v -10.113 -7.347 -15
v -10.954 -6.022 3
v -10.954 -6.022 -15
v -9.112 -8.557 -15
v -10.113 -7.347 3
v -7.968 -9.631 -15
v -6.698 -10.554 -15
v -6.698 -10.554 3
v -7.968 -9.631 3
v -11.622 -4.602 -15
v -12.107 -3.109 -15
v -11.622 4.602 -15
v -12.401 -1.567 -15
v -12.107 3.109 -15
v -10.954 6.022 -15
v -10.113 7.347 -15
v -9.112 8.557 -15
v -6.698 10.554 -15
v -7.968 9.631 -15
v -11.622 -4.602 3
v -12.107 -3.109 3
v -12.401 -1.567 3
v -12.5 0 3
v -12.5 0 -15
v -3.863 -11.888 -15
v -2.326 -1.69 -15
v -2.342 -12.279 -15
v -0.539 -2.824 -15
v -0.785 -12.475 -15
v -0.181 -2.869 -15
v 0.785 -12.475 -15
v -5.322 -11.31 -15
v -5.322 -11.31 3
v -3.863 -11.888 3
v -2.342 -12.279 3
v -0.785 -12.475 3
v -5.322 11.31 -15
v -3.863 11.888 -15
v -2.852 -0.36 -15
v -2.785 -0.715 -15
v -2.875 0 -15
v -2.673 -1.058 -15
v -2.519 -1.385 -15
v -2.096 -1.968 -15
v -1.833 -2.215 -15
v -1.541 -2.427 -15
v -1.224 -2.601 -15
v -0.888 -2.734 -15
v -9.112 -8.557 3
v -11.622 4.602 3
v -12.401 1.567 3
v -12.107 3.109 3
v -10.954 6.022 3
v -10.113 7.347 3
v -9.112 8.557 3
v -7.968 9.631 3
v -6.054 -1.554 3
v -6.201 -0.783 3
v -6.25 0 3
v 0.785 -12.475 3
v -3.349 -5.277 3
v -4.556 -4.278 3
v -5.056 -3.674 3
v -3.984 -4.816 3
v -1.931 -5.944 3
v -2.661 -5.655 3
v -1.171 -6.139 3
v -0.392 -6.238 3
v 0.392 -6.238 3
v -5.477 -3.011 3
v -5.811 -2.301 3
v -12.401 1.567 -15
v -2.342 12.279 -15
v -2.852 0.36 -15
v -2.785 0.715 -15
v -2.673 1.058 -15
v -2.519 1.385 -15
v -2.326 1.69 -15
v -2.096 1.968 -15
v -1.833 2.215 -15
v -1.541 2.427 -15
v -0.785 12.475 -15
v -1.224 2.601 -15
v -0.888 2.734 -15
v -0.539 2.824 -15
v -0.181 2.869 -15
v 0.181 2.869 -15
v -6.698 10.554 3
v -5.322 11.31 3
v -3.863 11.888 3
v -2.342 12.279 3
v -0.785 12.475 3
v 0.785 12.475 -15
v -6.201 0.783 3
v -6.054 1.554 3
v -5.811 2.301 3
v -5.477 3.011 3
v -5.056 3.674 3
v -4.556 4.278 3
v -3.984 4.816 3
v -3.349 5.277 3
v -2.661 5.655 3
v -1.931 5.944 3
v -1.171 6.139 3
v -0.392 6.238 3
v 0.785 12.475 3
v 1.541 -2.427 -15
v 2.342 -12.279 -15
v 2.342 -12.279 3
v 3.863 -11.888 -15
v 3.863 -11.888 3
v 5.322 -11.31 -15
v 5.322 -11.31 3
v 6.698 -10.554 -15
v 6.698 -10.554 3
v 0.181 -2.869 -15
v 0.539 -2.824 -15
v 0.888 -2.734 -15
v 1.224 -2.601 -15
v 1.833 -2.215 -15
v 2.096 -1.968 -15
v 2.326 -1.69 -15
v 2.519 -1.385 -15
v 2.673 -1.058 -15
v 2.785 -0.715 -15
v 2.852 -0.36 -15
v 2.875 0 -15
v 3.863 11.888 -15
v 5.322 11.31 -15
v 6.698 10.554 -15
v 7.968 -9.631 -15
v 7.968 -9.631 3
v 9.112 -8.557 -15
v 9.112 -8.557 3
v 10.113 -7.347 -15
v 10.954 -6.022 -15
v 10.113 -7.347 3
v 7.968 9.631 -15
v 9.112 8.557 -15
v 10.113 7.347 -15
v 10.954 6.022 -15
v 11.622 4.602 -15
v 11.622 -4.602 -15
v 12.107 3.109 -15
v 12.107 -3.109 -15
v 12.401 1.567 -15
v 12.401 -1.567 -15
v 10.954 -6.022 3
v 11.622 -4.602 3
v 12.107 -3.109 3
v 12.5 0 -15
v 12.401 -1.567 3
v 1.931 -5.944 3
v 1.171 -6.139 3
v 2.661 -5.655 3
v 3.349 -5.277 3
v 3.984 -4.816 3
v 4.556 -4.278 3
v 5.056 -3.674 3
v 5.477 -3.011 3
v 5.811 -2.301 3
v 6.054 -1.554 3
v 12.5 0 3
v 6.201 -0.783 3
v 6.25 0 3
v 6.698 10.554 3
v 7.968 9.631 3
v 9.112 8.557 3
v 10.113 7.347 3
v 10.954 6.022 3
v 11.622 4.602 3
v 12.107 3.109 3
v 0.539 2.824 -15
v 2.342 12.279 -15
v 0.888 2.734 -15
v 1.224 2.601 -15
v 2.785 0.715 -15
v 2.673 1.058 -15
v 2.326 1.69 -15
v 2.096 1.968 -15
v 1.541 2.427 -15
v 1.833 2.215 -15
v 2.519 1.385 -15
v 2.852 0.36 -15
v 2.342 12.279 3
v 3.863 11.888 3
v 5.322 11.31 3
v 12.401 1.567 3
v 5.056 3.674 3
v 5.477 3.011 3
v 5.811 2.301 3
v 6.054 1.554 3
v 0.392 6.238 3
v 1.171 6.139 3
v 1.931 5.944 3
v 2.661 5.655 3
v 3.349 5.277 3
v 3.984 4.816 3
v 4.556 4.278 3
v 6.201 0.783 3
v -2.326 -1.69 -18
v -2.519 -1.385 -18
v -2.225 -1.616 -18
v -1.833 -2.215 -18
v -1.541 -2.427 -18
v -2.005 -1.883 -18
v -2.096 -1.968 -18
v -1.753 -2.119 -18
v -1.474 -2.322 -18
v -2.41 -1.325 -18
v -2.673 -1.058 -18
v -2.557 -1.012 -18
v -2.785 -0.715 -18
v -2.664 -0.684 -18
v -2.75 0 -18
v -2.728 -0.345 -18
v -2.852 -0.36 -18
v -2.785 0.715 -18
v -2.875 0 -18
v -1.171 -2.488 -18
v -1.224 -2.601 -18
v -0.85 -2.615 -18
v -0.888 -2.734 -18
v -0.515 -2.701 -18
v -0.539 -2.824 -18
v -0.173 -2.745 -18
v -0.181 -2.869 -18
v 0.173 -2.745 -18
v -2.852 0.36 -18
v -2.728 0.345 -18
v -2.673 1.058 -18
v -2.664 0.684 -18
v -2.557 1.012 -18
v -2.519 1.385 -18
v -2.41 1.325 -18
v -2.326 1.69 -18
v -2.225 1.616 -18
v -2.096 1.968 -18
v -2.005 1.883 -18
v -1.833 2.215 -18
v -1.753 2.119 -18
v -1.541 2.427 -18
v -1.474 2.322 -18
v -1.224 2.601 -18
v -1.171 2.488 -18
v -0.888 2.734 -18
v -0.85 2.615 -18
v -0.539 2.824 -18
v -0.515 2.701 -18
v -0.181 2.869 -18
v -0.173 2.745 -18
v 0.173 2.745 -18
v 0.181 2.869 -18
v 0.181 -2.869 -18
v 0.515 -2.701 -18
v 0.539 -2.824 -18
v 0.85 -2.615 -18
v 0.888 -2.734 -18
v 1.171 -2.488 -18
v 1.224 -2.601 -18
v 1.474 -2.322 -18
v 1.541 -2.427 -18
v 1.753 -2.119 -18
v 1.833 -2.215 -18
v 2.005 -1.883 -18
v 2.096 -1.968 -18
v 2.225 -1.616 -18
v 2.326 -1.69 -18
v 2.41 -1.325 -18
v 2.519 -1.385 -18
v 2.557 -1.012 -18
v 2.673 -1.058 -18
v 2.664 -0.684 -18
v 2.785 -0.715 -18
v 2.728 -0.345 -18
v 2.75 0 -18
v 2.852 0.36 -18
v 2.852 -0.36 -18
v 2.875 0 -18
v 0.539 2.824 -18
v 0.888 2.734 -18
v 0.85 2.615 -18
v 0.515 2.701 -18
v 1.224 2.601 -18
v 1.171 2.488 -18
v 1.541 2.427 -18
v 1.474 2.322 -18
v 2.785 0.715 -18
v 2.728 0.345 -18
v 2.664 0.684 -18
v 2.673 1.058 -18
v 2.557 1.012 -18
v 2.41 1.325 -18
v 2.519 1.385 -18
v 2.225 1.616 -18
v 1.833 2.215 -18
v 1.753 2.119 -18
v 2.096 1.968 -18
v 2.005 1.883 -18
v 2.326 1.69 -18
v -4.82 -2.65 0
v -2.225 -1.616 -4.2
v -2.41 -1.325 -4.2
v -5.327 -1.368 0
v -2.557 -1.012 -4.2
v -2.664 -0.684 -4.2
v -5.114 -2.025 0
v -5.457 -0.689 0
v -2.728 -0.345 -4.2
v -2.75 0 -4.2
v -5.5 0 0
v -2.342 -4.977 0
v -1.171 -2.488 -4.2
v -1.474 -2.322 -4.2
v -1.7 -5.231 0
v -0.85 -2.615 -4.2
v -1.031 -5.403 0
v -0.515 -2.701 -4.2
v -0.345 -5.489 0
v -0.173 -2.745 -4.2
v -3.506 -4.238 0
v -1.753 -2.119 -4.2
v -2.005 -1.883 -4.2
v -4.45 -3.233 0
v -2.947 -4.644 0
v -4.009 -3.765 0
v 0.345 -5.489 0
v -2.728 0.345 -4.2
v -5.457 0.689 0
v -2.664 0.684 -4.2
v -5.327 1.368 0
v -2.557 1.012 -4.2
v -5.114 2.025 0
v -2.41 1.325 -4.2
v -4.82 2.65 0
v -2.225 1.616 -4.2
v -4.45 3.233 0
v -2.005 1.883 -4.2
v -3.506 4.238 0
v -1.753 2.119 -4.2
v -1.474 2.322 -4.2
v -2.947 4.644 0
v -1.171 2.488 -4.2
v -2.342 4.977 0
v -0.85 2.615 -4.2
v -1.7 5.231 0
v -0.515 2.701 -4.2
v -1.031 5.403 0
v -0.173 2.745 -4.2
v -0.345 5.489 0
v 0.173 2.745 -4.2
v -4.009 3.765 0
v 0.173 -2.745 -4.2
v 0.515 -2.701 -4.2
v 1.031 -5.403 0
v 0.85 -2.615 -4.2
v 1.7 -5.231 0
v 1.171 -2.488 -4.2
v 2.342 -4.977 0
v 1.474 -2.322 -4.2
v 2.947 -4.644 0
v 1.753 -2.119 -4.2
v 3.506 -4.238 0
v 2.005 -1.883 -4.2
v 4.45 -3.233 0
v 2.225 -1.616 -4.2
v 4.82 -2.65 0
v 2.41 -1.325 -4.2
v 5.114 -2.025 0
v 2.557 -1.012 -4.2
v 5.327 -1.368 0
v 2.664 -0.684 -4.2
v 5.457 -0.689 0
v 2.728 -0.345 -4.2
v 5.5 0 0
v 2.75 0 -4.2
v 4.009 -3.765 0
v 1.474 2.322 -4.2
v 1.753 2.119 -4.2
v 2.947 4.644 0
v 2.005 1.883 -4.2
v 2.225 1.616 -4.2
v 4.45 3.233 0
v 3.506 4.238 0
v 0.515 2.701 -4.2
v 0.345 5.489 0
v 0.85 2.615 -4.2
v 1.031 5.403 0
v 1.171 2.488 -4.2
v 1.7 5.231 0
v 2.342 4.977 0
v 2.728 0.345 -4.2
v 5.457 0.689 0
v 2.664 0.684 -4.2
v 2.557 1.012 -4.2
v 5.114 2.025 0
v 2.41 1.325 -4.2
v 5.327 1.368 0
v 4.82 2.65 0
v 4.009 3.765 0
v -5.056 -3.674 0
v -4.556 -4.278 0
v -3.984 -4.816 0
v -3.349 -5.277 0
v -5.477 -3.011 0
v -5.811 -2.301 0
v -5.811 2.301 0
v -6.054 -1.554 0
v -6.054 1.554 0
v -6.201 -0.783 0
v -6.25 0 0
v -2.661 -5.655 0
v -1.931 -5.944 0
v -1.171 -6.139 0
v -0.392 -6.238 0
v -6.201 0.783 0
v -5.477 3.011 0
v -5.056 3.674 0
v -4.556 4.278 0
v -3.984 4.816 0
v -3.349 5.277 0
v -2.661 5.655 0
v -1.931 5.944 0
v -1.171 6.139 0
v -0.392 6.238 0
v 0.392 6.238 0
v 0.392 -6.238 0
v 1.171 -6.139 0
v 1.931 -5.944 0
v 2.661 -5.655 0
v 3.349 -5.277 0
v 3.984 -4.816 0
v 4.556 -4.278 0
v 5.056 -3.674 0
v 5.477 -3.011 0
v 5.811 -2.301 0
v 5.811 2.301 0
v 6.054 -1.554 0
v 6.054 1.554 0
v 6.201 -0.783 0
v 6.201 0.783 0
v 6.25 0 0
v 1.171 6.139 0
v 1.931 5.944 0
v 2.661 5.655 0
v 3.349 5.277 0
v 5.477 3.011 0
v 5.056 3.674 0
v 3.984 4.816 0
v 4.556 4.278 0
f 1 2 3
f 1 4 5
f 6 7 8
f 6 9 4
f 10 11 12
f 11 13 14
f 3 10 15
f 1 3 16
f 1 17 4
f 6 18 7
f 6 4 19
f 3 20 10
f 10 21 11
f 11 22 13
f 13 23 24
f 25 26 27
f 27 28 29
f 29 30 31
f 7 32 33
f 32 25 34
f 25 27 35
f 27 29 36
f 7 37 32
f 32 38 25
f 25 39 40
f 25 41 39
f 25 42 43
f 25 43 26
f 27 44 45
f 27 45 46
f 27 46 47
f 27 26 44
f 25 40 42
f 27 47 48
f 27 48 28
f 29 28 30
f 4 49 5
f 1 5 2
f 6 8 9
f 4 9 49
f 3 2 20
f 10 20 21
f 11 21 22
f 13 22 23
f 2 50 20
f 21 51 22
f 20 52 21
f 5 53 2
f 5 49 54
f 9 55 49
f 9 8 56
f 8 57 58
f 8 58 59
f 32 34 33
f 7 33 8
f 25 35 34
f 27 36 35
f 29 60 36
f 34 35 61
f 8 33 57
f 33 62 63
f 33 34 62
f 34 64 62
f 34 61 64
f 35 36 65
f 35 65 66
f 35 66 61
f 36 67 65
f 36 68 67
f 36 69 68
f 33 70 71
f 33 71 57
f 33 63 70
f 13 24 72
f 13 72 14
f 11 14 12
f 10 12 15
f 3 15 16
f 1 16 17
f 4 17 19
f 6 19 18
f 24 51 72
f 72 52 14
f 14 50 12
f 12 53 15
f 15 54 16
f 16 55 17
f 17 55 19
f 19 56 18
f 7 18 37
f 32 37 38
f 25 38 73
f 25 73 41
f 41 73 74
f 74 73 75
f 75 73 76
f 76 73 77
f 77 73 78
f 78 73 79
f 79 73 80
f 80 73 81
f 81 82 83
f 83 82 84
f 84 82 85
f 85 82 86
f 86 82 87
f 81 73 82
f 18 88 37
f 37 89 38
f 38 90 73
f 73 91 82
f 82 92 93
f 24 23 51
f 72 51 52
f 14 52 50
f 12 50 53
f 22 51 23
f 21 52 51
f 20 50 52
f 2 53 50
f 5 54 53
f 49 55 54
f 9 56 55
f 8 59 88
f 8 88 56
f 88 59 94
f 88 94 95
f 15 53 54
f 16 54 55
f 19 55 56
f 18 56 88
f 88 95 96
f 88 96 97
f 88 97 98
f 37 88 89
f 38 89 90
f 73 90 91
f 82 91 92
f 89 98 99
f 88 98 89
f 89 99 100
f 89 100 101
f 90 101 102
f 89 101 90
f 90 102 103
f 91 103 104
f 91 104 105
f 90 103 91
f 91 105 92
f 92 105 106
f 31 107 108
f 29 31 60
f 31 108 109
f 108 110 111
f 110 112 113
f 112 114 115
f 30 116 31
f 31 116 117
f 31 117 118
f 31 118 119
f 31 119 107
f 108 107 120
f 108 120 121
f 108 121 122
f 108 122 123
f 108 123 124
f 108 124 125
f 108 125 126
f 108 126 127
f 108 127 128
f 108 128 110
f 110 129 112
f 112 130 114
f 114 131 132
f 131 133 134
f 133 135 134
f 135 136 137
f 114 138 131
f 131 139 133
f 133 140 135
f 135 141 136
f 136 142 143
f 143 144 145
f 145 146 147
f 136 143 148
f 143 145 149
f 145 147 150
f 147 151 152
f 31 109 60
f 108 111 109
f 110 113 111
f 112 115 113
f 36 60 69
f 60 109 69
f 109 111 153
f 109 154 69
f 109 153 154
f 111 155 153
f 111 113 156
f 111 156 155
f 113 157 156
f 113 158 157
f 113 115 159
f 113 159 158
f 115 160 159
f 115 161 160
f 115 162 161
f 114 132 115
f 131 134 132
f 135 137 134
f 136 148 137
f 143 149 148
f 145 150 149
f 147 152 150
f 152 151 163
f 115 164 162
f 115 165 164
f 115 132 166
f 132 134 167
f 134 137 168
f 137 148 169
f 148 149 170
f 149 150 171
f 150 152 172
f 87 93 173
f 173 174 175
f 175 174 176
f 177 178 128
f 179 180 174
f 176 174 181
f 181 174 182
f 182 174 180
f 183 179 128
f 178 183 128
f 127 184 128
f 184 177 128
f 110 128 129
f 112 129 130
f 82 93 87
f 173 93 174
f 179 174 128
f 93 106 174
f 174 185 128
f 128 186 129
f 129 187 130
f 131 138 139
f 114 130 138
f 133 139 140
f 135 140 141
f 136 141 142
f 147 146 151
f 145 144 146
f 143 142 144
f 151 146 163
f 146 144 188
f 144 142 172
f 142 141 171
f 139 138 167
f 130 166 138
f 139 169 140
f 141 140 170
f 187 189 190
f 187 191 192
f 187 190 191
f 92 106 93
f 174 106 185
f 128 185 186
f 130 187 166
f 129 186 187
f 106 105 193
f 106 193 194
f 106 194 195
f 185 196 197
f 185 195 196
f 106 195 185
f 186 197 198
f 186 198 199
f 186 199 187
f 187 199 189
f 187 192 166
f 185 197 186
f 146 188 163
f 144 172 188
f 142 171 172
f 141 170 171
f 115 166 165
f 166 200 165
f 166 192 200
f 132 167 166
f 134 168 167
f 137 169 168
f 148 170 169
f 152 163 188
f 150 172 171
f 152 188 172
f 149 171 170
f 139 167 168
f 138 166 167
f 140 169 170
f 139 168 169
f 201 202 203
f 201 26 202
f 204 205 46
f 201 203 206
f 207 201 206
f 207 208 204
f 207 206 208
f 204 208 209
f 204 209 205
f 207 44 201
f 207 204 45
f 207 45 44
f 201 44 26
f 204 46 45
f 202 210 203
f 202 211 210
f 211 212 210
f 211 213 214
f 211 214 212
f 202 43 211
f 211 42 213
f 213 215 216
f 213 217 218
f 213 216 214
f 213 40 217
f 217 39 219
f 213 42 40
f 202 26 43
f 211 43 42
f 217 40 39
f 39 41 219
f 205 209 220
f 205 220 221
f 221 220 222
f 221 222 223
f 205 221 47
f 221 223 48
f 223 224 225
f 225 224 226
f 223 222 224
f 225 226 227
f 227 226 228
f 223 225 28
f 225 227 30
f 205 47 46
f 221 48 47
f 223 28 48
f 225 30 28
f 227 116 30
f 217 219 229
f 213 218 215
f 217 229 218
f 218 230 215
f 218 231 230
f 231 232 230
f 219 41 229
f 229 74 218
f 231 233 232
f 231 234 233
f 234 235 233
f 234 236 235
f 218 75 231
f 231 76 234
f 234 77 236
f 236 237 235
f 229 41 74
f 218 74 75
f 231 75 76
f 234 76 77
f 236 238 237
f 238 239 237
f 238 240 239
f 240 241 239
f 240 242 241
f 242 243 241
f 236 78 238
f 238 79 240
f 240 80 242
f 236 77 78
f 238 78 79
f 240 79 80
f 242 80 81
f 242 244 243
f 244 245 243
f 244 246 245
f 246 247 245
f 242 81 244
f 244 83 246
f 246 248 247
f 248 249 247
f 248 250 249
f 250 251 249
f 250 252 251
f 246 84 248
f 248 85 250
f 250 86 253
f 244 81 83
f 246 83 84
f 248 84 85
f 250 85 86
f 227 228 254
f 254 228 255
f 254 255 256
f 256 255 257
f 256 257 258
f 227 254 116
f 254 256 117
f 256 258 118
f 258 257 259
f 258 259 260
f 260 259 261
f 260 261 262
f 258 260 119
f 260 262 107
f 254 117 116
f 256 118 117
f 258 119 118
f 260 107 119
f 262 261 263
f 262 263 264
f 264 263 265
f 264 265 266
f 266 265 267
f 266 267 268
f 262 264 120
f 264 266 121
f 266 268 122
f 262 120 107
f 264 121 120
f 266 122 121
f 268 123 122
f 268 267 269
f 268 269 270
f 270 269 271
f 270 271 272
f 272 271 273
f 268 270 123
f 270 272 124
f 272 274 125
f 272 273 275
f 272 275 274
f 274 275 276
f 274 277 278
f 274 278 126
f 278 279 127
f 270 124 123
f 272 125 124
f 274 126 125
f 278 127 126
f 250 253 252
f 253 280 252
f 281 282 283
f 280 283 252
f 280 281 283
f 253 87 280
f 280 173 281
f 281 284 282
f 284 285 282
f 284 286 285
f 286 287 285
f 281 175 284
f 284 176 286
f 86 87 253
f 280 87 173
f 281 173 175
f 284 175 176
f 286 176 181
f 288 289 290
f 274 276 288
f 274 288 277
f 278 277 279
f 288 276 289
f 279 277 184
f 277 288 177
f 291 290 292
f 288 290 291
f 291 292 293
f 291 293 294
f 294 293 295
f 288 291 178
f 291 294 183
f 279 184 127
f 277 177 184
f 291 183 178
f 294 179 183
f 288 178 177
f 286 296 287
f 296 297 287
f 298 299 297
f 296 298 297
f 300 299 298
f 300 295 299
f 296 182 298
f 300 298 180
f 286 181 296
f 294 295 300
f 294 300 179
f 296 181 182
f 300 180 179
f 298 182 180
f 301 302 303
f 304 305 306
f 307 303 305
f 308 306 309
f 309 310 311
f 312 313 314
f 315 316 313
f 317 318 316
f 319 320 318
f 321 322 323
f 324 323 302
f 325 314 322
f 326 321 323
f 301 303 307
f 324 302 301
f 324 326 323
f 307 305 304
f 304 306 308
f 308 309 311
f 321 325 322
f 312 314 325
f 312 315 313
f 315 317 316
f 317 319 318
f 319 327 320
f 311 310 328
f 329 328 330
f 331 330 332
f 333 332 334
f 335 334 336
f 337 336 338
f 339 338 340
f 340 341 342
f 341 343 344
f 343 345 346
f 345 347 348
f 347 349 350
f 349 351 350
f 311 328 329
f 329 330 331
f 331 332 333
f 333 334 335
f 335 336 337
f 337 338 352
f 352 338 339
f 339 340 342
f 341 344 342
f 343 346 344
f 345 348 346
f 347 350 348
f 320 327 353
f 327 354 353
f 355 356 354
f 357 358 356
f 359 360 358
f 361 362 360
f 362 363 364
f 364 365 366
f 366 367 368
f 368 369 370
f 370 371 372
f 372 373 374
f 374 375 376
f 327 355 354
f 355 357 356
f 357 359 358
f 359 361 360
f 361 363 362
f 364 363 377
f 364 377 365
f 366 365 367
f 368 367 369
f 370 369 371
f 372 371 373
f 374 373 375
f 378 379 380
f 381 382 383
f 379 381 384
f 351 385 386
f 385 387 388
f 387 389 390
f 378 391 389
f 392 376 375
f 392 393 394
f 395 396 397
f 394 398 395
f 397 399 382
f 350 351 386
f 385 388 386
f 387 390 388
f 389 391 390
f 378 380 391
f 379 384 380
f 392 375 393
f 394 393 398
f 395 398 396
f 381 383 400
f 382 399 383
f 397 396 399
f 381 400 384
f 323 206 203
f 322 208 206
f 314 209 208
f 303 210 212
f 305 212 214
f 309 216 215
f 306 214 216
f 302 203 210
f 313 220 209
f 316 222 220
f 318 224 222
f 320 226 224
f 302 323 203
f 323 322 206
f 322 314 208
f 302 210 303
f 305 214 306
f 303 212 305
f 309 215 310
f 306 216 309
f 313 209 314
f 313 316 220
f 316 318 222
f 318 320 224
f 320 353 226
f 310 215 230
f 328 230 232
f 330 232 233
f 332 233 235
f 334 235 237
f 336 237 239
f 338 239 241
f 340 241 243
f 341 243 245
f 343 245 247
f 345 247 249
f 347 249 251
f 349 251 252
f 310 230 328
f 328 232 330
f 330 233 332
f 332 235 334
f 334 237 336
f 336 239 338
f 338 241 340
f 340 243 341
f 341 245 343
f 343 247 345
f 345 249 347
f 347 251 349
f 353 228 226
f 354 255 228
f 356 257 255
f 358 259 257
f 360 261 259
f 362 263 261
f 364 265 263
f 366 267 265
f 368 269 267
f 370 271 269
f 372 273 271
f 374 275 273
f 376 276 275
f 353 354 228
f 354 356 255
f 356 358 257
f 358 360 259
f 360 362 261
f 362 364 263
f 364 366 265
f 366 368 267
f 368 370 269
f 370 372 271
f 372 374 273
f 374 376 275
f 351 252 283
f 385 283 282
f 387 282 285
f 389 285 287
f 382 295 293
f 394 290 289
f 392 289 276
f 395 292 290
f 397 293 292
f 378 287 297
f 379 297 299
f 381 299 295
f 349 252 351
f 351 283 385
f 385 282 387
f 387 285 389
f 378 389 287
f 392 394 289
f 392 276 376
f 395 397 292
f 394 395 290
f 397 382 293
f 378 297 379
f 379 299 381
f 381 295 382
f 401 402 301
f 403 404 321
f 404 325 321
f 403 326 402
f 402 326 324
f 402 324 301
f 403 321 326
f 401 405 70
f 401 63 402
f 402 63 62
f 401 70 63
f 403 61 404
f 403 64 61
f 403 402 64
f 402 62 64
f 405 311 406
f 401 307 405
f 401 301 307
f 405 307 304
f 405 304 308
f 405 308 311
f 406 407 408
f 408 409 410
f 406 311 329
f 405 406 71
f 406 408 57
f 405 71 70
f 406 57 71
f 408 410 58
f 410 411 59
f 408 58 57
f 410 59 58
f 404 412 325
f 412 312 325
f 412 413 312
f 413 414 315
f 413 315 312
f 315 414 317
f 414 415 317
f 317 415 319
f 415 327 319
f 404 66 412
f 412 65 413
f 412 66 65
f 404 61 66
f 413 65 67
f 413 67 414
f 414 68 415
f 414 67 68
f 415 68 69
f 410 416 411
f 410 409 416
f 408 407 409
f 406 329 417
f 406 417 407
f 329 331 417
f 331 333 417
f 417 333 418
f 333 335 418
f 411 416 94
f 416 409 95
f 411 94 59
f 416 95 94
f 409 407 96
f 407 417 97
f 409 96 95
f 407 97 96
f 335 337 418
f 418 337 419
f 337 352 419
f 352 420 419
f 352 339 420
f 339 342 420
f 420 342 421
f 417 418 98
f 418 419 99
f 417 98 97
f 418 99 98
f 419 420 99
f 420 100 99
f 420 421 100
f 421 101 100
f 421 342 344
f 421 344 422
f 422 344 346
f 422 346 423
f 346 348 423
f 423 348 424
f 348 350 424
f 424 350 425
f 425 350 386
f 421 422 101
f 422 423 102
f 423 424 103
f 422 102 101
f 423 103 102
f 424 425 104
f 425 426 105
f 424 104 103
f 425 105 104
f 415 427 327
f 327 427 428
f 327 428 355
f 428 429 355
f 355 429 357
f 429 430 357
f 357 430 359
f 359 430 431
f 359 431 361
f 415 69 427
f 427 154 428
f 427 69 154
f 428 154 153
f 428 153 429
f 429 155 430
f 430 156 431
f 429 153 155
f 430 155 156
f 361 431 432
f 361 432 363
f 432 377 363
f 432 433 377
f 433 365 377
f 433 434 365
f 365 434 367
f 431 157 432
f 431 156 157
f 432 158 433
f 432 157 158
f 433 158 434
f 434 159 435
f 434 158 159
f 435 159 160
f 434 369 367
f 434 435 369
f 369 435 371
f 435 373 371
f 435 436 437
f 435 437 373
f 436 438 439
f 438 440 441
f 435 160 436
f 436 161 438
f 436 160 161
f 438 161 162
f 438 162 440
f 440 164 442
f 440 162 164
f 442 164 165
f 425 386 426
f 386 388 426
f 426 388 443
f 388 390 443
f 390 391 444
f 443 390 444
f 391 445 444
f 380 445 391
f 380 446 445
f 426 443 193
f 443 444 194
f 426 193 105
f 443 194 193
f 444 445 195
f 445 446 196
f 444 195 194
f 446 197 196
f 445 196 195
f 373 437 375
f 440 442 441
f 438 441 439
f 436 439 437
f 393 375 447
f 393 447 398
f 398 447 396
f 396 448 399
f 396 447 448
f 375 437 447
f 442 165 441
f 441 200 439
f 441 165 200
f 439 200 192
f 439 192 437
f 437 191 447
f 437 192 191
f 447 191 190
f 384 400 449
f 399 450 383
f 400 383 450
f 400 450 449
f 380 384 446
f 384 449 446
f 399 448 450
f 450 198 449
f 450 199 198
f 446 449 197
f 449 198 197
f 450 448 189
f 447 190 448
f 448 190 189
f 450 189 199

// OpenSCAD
$fn = 50;

difference() {
	union() {
		translate(v = [0, 0, -15.0]) {
			cylinder(h = 18, r = 12.5);
		}
		#translate(v = [0, 0, -18.0]) {
			cylinder(h = 18, r = 2.875);
		}
	}
	union() {
		translate(v = [0, 0, 0]) {
			rotate(a = [0, 0, 0]) {
				difference() {
					union() {
						translate(v = [0, 0, -18.0]) {
							cylinder(h = 18, r = 2.25);
						}
						translate(v = [0, 0, -4.2]) {
							cylinder(h = 4.2, r1 = 2.75, r2 = 5.5);
						}
						translate(v = [0, 0, -18.0]) {
							cylinder(h = 18, r = 2.75);
						}
						translate(v = [0, 0, -18.0]) {
							cylinder(h = 18, r = 2.25);
						}
					}
					union();
				}
			}
		}
		#cylinder(h = 3, r = 6.25);
	}
}
